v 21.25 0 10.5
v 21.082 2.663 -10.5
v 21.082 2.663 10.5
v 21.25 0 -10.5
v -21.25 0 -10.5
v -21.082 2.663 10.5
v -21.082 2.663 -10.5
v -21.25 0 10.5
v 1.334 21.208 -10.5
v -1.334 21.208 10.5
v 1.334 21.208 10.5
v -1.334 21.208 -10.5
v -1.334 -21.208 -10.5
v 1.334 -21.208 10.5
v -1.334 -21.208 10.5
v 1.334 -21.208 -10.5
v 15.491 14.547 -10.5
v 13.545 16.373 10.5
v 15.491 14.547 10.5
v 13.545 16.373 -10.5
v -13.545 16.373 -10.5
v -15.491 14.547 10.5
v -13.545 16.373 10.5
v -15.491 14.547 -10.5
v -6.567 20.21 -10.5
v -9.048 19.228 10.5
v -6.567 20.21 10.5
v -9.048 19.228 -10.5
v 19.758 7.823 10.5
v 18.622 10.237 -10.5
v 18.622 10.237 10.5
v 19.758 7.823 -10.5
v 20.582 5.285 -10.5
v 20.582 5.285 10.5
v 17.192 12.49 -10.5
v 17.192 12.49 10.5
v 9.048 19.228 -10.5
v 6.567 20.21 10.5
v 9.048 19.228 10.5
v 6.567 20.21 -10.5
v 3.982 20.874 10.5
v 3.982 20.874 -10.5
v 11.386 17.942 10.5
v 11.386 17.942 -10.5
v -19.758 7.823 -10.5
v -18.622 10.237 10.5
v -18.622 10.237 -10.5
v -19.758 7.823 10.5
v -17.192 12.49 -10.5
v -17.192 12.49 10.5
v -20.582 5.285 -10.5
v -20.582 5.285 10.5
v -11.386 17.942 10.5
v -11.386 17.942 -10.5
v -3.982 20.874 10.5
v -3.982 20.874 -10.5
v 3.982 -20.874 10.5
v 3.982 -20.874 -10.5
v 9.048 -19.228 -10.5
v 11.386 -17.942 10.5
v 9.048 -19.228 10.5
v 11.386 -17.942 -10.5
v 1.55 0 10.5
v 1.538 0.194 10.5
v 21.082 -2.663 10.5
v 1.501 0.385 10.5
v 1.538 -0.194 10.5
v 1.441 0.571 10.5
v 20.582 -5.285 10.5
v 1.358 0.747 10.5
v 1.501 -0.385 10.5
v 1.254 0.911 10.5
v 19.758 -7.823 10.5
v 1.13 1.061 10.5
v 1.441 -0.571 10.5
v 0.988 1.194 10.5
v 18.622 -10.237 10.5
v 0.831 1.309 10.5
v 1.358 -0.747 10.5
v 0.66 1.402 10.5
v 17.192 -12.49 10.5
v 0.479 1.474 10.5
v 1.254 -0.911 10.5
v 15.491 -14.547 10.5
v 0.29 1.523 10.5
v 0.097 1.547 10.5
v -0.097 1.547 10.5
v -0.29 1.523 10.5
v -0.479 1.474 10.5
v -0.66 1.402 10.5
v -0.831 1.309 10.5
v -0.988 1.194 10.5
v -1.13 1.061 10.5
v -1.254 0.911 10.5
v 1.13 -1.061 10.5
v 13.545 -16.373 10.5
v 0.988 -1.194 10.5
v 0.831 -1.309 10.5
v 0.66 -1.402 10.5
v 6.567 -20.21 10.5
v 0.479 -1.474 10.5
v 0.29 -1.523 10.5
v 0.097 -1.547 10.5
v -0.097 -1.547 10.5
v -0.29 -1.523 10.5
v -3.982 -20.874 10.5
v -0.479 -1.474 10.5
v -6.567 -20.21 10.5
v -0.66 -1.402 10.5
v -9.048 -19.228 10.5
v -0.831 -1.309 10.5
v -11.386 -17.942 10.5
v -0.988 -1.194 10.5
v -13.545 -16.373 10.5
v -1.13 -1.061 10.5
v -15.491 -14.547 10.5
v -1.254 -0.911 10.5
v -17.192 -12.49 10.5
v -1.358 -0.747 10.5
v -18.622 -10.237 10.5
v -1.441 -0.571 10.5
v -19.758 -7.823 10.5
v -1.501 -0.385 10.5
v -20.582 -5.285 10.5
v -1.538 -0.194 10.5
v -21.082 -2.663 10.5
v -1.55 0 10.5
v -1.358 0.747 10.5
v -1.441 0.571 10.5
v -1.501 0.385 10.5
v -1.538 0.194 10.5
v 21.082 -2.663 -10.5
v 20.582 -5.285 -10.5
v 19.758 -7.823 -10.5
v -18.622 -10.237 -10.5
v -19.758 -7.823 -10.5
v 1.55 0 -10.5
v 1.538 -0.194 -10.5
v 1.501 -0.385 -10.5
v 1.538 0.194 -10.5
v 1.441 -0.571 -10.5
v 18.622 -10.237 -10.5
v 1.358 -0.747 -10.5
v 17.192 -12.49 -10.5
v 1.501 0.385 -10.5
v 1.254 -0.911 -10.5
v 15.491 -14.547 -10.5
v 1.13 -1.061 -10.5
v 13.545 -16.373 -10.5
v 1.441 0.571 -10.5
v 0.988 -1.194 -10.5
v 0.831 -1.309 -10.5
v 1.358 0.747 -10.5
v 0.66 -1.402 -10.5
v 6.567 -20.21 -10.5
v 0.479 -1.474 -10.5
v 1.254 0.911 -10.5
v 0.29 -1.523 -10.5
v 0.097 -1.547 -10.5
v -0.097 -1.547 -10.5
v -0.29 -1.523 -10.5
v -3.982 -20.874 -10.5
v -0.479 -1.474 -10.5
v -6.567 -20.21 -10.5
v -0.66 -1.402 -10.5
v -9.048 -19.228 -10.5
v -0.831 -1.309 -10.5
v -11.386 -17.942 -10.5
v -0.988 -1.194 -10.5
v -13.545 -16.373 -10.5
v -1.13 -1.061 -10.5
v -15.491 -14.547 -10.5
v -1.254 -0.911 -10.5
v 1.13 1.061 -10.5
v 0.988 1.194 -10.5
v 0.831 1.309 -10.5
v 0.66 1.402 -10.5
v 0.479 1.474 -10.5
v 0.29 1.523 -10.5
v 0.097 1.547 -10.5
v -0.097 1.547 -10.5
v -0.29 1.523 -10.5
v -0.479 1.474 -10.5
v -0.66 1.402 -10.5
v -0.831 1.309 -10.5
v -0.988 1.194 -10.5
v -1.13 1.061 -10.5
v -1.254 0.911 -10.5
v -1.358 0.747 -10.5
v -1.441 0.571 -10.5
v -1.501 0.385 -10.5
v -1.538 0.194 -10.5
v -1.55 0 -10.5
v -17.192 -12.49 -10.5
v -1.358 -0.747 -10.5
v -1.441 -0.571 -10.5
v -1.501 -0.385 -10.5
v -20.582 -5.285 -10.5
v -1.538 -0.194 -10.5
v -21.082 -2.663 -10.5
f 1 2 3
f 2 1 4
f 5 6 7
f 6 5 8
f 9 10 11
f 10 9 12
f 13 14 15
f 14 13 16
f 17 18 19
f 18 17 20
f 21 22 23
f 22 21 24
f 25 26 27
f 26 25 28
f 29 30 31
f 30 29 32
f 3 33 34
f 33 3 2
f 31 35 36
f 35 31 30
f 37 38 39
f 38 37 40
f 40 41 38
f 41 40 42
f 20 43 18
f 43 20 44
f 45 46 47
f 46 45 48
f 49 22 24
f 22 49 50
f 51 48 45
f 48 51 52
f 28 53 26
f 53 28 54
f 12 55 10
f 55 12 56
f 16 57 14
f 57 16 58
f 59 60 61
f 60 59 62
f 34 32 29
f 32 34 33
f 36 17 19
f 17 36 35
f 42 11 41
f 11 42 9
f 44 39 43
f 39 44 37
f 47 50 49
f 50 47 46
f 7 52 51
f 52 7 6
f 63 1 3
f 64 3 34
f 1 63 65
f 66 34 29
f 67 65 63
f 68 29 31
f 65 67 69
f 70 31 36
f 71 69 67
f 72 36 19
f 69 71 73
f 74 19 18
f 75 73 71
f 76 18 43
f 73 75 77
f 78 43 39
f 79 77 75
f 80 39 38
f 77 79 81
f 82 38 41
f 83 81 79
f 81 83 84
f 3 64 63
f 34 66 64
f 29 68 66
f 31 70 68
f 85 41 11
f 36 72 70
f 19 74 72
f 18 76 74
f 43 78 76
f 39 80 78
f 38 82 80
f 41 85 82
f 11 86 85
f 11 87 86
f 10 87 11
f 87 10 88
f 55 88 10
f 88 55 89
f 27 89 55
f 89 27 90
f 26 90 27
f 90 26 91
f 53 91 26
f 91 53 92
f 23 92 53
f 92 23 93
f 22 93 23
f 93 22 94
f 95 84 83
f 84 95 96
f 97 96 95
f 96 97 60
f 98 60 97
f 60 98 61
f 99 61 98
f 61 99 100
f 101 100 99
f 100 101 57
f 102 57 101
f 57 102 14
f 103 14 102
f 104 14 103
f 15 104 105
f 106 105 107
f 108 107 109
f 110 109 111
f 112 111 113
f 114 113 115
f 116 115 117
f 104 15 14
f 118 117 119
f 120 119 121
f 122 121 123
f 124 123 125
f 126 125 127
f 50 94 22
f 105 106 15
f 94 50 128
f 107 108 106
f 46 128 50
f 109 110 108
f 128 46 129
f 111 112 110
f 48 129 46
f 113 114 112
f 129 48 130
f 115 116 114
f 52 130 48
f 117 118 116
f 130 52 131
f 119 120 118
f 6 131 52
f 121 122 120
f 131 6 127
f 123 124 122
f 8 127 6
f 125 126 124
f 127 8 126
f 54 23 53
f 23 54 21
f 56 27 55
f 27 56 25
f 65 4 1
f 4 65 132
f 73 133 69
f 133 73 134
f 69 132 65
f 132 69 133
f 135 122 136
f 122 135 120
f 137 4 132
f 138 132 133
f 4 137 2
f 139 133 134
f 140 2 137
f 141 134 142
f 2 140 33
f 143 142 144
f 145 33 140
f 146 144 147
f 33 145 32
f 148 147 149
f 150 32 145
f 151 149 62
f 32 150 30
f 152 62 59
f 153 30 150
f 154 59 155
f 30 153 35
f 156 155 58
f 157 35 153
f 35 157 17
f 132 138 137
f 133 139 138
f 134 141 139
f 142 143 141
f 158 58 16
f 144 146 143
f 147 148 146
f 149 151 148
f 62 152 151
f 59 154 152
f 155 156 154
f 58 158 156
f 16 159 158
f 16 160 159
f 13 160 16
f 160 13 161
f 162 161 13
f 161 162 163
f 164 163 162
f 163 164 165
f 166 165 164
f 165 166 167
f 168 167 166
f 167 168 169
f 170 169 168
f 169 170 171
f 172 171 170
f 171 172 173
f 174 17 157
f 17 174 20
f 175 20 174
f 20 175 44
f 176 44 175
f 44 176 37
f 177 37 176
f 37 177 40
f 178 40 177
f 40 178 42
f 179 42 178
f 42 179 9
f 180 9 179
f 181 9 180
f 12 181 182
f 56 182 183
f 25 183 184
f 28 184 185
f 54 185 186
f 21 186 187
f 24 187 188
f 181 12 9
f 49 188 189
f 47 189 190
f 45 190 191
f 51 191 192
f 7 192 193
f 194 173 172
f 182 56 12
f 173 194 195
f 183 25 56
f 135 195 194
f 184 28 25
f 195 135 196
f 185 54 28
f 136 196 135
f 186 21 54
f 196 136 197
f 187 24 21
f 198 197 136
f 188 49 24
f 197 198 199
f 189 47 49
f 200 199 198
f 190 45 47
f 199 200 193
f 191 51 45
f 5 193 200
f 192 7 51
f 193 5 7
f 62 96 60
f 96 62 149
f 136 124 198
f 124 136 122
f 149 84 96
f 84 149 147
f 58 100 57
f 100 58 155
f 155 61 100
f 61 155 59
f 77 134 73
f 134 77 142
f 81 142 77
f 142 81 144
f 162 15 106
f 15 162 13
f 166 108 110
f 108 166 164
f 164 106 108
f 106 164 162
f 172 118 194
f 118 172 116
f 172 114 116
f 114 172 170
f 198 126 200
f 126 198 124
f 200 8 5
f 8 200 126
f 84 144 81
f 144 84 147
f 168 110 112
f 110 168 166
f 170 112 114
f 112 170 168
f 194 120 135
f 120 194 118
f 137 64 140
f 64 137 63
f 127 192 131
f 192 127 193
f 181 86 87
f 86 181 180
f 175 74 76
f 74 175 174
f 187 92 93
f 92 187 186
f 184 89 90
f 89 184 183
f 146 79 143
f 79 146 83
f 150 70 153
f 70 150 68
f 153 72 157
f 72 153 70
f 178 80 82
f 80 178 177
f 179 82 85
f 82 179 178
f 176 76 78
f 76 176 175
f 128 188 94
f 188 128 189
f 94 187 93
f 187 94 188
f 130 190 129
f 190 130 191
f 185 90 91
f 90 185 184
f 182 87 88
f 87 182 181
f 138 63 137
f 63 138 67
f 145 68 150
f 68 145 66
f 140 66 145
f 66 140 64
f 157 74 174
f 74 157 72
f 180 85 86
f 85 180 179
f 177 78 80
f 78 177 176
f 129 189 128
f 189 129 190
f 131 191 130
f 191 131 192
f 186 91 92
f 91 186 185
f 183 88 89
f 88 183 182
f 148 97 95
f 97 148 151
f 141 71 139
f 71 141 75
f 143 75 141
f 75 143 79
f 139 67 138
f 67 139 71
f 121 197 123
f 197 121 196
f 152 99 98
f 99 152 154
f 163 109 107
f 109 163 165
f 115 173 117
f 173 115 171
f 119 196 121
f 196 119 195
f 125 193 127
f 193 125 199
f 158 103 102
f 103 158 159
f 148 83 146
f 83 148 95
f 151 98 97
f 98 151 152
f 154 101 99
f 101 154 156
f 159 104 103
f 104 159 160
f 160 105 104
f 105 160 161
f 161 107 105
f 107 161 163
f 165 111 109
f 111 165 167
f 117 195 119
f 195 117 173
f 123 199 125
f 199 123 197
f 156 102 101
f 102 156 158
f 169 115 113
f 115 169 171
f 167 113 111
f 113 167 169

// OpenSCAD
$fn = 50;


difference() {
	union() {
		translate(v = [0, 0, -10.5000000000]) {
			cylinder(h = 21, r = 21.2500000000);
		}
	}
	union() {
		translate(v = [0, 0, -100.0000000000]) {
			cylinder(h = 200, r = 1.5500000000);
		}
	}
}
